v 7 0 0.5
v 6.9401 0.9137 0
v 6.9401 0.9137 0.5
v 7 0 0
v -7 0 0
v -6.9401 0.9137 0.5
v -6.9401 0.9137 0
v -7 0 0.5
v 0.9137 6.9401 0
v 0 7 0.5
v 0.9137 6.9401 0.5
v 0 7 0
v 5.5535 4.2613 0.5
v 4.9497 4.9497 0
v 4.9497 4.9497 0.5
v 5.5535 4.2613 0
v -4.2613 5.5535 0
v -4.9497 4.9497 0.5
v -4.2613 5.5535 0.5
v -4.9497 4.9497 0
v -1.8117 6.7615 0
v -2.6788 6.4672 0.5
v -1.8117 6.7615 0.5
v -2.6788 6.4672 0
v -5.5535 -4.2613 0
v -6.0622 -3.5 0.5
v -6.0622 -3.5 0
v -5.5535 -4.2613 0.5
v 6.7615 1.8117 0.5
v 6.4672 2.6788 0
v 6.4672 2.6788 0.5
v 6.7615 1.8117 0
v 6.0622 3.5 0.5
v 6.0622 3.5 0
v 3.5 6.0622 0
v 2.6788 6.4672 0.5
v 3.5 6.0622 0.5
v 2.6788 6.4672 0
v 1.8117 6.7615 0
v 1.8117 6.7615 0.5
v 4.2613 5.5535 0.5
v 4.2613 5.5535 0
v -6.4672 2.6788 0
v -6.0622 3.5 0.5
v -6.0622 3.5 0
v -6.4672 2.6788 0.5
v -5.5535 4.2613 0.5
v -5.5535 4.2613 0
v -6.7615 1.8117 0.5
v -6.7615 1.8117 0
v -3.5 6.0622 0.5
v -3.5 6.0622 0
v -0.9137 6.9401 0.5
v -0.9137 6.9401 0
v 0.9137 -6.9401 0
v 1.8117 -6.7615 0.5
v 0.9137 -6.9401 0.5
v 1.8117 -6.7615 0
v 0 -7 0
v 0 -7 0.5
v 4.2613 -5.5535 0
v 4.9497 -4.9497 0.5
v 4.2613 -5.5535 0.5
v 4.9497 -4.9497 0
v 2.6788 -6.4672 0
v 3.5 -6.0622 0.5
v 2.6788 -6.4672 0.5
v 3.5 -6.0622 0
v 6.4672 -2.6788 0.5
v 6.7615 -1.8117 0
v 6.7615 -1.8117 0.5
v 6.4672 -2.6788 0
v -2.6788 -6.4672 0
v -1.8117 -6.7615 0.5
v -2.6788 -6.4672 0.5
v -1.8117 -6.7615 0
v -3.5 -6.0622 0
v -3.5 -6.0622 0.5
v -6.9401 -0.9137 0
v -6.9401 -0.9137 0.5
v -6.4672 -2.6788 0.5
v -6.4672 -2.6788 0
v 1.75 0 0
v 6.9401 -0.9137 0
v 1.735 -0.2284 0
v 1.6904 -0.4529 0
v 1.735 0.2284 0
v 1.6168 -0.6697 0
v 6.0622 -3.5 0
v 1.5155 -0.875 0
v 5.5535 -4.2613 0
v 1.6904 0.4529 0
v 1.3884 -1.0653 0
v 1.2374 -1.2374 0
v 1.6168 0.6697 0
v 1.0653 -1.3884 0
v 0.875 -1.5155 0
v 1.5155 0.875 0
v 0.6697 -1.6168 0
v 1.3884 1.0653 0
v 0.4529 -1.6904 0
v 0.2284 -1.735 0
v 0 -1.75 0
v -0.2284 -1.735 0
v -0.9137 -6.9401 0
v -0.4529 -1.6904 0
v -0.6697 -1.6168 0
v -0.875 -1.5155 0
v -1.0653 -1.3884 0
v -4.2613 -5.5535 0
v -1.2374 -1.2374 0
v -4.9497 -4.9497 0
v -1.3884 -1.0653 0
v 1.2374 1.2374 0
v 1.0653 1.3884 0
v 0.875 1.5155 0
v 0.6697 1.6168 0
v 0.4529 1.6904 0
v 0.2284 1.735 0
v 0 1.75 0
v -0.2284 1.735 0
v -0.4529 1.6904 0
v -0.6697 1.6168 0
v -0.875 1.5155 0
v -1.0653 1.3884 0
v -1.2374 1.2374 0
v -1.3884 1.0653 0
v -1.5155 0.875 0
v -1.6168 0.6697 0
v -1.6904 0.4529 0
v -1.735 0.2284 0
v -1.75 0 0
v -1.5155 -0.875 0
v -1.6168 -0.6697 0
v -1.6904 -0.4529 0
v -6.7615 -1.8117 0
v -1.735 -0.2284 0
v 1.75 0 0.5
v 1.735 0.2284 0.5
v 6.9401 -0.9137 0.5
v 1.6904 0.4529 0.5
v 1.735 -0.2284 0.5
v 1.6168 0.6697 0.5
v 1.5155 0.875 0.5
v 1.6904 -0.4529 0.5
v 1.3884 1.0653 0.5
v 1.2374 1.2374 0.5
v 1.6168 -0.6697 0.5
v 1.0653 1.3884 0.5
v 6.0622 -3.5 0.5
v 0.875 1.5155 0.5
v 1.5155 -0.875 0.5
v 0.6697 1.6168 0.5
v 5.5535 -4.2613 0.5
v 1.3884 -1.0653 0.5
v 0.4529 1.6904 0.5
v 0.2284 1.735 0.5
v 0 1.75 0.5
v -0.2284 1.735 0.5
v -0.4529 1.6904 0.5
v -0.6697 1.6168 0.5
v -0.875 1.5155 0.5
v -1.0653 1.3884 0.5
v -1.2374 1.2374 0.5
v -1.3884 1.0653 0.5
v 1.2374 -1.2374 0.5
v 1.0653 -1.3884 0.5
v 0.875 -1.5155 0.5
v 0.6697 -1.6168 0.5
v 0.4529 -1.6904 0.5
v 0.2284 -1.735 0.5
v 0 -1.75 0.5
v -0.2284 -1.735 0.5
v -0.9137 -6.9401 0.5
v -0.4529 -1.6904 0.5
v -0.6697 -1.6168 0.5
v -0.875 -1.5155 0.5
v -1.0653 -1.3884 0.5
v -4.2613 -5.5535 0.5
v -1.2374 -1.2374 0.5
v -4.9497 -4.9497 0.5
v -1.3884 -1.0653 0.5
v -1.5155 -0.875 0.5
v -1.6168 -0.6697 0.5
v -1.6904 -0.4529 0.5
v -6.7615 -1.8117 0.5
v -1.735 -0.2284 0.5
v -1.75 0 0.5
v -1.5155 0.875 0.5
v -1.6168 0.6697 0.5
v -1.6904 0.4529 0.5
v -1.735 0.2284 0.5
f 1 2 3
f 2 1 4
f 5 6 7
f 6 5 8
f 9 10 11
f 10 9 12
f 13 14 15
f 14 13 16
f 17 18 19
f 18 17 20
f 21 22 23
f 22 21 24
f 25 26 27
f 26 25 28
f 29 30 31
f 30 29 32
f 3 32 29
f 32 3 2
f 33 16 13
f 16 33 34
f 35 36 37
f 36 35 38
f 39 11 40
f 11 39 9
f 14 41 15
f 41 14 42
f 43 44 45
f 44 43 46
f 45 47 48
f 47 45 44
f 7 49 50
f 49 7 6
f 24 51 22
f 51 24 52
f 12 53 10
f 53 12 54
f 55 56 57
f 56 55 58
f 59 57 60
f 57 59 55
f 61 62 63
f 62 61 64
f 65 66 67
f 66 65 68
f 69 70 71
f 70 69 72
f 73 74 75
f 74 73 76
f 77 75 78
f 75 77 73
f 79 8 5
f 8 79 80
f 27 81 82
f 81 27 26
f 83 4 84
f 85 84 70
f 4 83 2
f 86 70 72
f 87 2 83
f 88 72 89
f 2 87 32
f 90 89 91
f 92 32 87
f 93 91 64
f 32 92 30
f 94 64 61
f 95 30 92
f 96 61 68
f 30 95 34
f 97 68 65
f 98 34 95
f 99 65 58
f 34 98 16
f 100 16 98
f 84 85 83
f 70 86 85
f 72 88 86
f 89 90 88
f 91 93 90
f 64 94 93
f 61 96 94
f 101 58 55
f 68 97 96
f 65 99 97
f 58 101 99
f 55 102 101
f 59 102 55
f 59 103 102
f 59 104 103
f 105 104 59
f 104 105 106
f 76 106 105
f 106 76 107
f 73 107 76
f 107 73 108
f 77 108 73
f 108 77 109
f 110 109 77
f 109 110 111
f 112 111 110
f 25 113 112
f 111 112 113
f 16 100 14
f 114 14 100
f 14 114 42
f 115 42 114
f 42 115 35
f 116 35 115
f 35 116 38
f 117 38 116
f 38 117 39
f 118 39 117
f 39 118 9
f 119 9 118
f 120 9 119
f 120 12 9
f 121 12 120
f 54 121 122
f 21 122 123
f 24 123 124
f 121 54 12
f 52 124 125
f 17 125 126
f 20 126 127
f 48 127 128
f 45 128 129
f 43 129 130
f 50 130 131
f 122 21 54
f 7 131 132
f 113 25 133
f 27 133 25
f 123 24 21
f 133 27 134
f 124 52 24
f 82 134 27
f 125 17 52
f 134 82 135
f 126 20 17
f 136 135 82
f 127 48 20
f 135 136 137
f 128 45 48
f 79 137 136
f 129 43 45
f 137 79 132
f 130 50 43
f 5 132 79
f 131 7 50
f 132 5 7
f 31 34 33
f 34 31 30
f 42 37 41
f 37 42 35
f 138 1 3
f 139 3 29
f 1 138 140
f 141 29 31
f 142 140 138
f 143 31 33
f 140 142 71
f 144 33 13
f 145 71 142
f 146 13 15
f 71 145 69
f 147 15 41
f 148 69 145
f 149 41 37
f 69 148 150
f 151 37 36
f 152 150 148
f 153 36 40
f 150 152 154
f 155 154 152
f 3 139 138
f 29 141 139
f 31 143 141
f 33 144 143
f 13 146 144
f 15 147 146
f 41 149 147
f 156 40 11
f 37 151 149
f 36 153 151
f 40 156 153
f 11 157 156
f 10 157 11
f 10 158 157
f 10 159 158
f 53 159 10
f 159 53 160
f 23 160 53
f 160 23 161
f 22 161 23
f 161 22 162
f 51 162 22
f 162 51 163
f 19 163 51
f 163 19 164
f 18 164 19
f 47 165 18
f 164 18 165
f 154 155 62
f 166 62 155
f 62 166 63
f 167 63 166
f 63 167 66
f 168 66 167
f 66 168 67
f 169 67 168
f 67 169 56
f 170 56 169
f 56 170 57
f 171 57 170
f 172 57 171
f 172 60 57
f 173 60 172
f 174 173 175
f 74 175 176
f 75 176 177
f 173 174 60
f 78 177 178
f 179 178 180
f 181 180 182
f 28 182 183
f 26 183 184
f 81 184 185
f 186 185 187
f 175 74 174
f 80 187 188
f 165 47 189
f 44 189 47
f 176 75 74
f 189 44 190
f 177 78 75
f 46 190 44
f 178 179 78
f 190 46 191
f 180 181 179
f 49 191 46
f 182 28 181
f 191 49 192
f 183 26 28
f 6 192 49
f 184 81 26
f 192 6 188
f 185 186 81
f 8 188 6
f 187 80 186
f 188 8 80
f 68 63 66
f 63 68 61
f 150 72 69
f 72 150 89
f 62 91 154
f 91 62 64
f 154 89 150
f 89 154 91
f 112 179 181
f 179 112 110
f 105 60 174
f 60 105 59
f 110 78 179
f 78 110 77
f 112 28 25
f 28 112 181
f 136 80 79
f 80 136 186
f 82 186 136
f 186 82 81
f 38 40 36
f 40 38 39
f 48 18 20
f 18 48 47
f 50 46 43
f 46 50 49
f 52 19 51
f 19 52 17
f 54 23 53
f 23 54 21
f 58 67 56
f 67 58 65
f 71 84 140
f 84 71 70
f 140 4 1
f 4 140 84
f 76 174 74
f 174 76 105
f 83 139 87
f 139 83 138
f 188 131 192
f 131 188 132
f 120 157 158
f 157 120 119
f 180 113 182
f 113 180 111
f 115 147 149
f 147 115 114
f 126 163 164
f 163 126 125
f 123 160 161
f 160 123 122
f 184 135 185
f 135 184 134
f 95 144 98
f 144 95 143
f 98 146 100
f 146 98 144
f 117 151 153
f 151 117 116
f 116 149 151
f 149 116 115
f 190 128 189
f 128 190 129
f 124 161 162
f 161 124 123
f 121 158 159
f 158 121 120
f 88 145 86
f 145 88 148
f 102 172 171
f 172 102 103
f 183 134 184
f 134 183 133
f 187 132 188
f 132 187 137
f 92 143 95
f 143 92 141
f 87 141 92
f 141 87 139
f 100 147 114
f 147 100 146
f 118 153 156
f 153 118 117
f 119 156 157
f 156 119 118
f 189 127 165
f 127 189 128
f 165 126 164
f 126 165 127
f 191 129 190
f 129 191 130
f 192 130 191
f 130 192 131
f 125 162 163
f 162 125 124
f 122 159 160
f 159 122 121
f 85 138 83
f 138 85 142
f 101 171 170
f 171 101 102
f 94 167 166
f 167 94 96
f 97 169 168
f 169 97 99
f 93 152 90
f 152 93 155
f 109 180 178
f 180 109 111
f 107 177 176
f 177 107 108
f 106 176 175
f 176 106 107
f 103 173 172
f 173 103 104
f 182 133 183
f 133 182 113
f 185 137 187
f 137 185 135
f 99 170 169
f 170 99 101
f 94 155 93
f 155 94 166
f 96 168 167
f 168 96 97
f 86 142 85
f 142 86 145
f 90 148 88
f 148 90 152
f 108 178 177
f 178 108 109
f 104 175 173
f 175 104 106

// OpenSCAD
// Gen-CX — assembly gap shim, h = run_clear (rotor face -> flange); copper is inside the flanges
include <parameters.scad>;
$fn = 48;
difference() {
    cylinder(d=spacer_pad_od, h=gap_spacer_h);
    translate([0, 0, -0.1]) cylinder(d=spacer_pad_id, h=gap_spacer_h + 0.2);
}
